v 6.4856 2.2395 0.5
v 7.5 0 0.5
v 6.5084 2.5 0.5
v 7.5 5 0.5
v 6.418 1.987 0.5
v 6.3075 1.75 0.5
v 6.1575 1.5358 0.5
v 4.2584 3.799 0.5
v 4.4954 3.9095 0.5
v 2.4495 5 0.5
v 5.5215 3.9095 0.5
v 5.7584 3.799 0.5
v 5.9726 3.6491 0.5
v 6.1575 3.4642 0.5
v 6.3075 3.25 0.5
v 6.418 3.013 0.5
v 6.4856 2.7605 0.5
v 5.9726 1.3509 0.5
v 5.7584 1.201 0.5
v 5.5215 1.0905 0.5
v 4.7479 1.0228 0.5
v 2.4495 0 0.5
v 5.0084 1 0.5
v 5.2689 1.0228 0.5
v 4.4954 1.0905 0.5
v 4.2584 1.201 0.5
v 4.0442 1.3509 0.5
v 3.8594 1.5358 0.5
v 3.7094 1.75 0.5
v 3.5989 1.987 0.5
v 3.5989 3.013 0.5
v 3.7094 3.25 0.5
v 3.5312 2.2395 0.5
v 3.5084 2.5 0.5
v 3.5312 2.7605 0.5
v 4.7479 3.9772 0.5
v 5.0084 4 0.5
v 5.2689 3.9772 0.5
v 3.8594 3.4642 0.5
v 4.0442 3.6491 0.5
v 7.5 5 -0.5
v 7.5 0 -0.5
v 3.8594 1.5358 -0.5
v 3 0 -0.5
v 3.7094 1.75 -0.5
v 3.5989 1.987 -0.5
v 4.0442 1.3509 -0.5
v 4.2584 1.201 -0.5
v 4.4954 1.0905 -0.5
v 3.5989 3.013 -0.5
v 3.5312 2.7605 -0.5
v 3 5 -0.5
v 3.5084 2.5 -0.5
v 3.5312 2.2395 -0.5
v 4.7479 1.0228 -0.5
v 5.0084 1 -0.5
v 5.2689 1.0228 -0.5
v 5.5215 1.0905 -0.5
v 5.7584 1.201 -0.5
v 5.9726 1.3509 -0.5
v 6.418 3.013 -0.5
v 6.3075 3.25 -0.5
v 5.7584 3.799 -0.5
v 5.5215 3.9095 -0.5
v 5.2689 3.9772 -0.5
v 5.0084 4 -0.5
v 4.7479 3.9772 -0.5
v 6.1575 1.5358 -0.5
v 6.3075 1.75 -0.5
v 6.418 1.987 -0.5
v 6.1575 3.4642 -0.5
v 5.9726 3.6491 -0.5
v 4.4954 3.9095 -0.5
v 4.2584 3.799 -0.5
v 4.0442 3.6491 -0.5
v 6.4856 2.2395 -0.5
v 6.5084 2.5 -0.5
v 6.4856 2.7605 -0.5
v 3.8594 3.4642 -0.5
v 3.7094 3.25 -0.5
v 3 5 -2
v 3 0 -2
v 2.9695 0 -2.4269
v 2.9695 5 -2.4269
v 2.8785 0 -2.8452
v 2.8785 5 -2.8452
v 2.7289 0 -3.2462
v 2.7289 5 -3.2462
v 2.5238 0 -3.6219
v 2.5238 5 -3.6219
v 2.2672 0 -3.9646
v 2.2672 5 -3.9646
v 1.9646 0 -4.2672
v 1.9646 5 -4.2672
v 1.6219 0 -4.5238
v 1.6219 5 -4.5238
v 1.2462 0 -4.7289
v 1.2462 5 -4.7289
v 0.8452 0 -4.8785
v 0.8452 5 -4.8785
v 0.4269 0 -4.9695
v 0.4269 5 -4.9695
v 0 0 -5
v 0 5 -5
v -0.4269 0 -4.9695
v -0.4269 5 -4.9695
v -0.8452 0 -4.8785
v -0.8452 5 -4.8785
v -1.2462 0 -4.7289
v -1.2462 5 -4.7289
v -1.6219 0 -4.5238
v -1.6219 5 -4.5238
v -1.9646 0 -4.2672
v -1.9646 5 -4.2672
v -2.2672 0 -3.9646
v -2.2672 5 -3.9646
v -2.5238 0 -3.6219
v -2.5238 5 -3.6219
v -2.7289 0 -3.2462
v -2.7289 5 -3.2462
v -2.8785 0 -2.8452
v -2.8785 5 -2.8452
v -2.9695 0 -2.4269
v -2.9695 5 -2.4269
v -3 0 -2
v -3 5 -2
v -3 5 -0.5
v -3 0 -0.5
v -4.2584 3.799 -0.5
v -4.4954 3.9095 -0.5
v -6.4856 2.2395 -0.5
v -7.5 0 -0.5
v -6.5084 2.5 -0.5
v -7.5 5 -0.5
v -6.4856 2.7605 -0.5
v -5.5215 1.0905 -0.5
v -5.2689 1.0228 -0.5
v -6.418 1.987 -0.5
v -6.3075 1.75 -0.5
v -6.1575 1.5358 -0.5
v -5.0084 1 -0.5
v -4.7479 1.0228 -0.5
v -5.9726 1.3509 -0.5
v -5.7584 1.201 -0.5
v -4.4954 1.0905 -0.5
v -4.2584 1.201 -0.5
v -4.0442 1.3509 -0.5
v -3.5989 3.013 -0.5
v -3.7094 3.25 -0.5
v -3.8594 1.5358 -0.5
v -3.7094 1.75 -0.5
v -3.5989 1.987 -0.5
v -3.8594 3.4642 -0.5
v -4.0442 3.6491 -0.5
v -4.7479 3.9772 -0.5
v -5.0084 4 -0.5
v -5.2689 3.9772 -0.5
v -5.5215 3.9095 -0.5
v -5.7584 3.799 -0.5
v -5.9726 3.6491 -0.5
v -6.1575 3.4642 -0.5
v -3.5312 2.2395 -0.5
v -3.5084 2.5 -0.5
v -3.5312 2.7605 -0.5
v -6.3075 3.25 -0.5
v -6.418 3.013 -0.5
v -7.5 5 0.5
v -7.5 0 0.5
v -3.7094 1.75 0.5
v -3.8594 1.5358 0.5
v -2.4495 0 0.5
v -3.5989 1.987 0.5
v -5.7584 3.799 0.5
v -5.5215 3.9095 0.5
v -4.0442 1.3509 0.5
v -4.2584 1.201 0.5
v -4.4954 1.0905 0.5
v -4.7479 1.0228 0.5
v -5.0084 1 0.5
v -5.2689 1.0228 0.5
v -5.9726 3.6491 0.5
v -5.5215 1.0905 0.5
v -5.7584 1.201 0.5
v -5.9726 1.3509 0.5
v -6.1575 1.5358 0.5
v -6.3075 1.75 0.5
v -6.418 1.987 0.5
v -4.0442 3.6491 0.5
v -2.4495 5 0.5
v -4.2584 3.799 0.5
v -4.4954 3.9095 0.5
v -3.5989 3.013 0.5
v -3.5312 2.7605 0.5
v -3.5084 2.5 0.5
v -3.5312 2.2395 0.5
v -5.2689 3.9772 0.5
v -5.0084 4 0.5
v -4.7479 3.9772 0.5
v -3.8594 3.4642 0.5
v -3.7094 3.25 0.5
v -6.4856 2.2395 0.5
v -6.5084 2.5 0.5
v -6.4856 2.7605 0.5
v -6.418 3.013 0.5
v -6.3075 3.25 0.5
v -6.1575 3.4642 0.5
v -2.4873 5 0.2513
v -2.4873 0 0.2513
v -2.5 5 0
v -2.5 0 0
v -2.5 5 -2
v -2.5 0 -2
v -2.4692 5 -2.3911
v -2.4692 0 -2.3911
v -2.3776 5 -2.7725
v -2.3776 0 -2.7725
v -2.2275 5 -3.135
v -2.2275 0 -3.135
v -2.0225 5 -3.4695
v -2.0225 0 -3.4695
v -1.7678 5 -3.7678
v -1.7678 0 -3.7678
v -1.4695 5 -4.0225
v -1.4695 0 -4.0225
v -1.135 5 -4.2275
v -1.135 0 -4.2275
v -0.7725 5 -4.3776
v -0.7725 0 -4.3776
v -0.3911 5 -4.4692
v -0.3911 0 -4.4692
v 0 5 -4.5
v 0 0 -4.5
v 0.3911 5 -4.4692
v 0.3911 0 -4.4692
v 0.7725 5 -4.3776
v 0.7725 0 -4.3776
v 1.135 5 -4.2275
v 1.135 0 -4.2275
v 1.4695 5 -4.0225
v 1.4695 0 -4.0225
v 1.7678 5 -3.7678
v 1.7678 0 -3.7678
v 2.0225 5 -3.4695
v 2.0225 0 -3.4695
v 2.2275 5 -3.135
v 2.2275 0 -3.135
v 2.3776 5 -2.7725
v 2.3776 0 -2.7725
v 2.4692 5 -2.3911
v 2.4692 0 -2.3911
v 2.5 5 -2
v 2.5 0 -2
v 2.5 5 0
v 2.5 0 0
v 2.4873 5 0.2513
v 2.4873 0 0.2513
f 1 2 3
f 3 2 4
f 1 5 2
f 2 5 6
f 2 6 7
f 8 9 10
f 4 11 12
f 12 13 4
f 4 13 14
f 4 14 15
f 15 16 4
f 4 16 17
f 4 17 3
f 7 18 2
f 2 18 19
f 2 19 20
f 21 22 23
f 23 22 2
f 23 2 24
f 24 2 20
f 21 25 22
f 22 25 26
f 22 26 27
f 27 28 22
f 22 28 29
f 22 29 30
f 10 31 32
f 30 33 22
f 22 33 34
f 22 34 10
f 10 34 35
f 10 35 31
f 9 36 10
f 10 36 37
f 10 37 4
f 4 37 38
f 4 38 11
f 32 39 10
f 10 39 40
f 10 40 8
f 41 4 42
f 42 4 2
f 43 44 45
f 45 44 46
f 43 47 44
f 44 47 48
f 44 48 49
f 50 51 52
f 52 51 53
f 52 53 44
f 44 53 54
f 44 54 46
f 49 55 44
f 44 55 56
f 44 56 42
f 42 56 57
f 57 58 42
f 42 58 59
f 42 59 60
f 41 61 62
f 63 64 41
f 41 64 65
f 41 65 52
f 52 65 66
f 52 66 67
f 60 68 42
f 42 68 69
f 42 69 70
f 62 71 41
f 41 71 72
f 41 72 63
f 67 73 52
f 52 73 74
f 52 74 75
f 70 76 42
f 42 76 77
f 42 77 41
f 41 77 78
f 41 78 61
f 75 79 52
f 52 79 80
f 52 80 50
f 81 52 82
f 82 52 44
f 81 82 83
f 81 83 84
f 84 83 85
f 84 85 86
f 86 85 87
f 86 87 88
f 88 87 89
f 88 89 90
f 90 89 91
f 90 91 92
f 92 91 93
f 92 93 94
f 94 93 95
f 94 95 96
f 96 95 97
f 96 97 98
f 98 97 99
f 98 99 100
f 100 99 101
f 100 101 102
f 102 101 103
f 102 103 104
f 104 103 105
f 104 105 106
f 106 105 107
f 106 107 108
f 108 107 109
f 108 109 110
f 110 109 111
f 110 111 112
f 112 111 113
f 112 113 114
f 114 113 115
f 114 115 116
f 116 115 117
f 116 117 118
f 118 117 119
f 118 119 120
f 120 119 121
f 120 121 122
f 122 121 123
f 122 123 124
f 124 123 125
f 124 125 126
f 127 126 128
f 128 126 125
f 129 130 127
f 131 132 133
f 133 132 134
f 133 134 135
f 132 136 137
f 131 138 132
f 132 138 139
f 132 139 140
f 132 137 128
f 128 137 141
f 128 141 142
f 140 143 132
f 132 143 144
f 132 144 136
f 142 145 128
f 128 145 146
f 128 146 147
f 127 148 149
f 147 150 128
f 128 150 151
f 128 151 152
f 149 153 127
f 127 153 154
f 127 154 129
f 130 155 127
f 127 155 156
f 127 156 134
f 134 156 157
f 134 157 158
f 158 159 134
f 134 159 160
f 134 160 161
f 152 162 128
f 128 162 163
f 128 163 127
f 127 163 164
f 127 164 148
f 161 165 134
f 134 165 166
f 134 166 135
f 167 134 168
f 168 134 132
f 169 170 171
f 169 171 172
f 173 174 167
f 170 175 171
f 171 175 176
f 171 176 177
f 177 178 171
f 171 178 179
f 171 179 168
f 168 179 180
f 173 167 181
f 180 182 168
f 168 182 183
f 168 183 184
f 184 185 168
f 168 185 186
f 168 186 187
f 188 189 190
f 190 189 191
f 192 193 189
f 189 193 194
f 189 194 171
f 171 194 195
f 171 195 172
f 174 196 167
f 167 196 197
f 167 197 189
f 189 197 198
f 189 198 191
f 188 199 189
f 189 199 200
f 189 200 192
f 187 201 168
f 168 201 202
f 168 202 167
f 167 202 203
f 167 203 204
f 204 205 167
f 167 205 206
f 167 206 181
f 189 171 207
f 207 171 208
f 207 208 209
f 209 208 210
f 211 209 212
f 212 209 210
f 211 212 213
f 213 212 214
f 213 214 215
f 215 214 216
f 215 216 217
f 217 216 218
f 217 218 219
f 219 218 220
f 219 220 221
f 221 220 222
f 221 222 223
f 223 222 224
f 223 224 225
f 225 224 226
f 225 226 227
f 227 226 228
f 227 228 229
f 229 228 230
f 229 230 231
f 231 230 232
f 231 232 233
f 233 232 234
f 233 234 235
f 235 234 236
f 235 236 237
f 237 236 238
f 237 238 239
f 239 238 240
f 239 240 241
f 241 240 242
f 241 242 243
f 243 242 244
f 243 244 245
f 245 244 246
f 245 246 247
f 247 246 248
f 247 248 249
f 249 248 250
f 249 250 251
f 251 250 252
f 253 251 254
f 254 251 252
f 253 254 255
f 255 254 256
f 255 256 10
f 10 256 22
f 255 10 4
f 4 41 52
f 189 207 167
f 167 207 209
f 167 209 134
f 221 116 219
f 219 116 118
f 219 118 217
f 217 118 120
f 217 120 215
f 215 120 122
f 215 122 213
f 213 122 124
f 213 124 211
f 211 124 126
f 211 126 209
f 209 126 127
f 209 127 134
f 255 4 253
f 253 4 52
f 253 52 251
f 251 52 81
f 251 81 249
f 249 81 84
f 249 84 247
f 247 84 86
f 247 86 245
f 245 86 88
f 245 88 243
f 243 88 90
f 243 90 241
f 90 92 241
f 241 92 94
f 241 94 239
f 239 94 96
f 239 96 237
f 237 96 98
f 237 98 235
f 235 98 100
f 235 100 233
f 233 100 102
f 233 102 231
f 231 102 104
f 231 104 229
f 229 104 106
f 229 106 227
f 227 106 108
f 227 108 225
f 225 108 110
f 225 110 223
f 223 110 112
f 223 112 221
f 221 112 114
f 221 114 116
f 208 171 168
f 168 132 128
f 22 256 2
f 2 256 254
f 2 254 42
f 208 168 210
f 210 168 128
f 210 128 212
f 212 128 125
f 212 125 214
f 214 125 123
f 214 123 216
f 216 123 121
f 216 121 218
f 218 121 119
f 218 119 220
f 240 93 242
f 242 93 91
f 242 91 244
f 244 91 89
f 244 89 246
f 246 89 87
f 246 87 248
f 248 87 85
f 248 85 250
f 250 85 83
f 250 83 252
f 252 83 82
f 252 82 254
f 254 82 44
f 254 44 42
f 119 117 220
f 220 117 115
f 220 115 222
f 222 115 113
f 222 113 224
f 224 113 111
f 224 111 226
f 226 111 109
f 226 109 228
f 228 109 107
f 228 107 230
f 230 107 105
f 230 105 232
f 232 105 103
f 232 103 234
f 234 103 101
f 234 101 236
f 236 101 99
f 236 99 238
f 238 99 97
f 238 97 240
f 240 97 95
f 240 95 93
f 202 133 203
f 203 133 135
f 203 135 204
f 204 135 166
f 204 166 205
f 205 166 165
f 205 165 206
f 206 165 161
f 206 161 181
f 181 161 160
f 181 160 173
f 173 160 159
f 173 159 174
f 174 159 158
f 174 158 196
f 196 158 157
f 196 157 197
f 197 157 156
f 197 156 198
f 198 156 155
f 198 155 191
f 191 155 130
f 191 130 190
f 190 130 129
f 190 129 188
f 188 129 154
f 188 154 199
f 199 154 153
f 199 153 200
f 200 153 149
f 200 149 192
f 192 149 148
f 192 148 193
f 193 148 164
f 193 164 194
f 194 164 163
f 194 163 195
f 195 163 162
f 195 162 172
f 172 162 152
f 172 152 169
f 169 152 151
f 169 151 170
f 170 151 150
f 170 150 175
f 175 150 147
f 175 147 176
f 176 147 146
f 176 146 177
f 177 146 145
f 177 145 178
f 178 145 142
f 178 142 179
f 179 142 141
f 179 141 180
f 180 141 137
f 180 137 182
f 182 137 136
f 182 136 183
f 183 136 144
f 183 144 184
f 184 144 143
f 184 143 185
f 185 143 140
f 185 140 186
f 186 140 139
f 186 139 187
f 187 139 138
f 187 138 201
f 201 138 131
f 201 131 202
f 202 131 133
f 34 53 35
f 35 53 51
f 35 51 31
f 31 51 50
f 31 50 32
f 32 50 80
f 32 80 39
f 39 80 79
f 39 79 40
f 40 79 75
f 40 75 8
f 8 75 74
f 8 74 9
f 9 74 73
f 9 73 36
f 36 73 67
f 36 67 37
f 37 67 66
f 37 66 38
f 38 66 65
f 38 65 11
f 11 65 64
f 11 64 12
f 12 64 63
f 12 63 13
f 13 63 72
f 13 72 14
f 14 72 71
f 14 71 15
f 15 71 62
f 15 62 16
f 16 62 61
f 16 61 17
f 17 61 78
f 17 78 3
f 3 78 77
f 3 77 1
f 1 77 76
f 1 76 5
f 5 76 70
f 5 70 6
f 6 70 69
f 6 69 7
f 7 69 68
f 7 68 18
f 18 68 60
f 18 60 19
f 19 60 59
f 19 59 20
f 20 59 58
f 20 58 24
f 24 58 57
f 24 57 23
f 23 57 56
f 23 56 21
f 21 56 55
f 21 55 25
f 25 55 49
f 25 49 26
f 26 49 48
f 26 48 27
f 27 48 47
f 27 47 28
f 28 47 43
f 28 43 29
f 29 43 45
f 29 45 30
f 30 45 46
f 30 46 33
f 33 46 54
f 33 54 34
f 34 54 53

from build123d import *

# Parameters (mm, degrees)
BOSS_EXTRUDE1_DEPTH = 5
SKETCH2_R           = 1.5
CUT_EXTRUDE1_DEPTH  = 11.07472084


with BuildPart() as part:
    # Sketch1 → Boss-Extrude1 (new body)
    with BuildSketch(Plane(origin=(0, 0, 0), x_dir=(1, 0, 0), z_dir=(0, 1, 0))):
        with BuildLine():
            Line((-3, 0.5), (-3, 2))
            ThreePointArc((-3, 2), (0, 5), (3, 2))
            Line((3, 2), (3, 0.5))
            Line((3, 0.5), (7.5, 0.5))
            Line((7.5, 0.5), (7.5, -0.5))
            Line((7.5, -0.5), (2.449489743, -0.5))
            ThreePointArc((2.449489743, -0.5), (2.487340383, -0.251272405), (2.5, 0))
            Line((2.5, 0), (2.5, 2))
            ThreePointArc((2.5, 2), (0, 4.5), (-2.5, 2))
            Line((-2.5, 2), (-2.5, 0))
            ThreePointArc((-2.5, 0), (-2.487340383, -0.251272405), (-2.449489743, -0.5))
            Line((-2.449489743, -0.5), (-7.5, -0.5))
            Line((-7.5, -0.5), (-7.5, 0.5))
            Line((-7.5, 0.5), (-3, 0.5))
        make_face()
    extrude(amount=BOSS_EXTRUDE1_DEPTH)

    # Sketch2 → Cut-Extrude1 (cut, through all)
    with BuildSketch(Plane(origin=(0, 0, -0.5), x_dir=(-1, 0, 0), z_dir=(0, 0, -1))):
        with Locations((5.008421406, 2.5)):
            Circle(SKETCH2_R)
        with Locations(Location((-5.008421406, 2.5, 0), (0, 0, 180))):
            Circle(SKETCH2_R)
    extrude(amount=-CUT_EXTRUDE1_DEPTH, mode=Mode.SUBTRACT)


solid = part.part
